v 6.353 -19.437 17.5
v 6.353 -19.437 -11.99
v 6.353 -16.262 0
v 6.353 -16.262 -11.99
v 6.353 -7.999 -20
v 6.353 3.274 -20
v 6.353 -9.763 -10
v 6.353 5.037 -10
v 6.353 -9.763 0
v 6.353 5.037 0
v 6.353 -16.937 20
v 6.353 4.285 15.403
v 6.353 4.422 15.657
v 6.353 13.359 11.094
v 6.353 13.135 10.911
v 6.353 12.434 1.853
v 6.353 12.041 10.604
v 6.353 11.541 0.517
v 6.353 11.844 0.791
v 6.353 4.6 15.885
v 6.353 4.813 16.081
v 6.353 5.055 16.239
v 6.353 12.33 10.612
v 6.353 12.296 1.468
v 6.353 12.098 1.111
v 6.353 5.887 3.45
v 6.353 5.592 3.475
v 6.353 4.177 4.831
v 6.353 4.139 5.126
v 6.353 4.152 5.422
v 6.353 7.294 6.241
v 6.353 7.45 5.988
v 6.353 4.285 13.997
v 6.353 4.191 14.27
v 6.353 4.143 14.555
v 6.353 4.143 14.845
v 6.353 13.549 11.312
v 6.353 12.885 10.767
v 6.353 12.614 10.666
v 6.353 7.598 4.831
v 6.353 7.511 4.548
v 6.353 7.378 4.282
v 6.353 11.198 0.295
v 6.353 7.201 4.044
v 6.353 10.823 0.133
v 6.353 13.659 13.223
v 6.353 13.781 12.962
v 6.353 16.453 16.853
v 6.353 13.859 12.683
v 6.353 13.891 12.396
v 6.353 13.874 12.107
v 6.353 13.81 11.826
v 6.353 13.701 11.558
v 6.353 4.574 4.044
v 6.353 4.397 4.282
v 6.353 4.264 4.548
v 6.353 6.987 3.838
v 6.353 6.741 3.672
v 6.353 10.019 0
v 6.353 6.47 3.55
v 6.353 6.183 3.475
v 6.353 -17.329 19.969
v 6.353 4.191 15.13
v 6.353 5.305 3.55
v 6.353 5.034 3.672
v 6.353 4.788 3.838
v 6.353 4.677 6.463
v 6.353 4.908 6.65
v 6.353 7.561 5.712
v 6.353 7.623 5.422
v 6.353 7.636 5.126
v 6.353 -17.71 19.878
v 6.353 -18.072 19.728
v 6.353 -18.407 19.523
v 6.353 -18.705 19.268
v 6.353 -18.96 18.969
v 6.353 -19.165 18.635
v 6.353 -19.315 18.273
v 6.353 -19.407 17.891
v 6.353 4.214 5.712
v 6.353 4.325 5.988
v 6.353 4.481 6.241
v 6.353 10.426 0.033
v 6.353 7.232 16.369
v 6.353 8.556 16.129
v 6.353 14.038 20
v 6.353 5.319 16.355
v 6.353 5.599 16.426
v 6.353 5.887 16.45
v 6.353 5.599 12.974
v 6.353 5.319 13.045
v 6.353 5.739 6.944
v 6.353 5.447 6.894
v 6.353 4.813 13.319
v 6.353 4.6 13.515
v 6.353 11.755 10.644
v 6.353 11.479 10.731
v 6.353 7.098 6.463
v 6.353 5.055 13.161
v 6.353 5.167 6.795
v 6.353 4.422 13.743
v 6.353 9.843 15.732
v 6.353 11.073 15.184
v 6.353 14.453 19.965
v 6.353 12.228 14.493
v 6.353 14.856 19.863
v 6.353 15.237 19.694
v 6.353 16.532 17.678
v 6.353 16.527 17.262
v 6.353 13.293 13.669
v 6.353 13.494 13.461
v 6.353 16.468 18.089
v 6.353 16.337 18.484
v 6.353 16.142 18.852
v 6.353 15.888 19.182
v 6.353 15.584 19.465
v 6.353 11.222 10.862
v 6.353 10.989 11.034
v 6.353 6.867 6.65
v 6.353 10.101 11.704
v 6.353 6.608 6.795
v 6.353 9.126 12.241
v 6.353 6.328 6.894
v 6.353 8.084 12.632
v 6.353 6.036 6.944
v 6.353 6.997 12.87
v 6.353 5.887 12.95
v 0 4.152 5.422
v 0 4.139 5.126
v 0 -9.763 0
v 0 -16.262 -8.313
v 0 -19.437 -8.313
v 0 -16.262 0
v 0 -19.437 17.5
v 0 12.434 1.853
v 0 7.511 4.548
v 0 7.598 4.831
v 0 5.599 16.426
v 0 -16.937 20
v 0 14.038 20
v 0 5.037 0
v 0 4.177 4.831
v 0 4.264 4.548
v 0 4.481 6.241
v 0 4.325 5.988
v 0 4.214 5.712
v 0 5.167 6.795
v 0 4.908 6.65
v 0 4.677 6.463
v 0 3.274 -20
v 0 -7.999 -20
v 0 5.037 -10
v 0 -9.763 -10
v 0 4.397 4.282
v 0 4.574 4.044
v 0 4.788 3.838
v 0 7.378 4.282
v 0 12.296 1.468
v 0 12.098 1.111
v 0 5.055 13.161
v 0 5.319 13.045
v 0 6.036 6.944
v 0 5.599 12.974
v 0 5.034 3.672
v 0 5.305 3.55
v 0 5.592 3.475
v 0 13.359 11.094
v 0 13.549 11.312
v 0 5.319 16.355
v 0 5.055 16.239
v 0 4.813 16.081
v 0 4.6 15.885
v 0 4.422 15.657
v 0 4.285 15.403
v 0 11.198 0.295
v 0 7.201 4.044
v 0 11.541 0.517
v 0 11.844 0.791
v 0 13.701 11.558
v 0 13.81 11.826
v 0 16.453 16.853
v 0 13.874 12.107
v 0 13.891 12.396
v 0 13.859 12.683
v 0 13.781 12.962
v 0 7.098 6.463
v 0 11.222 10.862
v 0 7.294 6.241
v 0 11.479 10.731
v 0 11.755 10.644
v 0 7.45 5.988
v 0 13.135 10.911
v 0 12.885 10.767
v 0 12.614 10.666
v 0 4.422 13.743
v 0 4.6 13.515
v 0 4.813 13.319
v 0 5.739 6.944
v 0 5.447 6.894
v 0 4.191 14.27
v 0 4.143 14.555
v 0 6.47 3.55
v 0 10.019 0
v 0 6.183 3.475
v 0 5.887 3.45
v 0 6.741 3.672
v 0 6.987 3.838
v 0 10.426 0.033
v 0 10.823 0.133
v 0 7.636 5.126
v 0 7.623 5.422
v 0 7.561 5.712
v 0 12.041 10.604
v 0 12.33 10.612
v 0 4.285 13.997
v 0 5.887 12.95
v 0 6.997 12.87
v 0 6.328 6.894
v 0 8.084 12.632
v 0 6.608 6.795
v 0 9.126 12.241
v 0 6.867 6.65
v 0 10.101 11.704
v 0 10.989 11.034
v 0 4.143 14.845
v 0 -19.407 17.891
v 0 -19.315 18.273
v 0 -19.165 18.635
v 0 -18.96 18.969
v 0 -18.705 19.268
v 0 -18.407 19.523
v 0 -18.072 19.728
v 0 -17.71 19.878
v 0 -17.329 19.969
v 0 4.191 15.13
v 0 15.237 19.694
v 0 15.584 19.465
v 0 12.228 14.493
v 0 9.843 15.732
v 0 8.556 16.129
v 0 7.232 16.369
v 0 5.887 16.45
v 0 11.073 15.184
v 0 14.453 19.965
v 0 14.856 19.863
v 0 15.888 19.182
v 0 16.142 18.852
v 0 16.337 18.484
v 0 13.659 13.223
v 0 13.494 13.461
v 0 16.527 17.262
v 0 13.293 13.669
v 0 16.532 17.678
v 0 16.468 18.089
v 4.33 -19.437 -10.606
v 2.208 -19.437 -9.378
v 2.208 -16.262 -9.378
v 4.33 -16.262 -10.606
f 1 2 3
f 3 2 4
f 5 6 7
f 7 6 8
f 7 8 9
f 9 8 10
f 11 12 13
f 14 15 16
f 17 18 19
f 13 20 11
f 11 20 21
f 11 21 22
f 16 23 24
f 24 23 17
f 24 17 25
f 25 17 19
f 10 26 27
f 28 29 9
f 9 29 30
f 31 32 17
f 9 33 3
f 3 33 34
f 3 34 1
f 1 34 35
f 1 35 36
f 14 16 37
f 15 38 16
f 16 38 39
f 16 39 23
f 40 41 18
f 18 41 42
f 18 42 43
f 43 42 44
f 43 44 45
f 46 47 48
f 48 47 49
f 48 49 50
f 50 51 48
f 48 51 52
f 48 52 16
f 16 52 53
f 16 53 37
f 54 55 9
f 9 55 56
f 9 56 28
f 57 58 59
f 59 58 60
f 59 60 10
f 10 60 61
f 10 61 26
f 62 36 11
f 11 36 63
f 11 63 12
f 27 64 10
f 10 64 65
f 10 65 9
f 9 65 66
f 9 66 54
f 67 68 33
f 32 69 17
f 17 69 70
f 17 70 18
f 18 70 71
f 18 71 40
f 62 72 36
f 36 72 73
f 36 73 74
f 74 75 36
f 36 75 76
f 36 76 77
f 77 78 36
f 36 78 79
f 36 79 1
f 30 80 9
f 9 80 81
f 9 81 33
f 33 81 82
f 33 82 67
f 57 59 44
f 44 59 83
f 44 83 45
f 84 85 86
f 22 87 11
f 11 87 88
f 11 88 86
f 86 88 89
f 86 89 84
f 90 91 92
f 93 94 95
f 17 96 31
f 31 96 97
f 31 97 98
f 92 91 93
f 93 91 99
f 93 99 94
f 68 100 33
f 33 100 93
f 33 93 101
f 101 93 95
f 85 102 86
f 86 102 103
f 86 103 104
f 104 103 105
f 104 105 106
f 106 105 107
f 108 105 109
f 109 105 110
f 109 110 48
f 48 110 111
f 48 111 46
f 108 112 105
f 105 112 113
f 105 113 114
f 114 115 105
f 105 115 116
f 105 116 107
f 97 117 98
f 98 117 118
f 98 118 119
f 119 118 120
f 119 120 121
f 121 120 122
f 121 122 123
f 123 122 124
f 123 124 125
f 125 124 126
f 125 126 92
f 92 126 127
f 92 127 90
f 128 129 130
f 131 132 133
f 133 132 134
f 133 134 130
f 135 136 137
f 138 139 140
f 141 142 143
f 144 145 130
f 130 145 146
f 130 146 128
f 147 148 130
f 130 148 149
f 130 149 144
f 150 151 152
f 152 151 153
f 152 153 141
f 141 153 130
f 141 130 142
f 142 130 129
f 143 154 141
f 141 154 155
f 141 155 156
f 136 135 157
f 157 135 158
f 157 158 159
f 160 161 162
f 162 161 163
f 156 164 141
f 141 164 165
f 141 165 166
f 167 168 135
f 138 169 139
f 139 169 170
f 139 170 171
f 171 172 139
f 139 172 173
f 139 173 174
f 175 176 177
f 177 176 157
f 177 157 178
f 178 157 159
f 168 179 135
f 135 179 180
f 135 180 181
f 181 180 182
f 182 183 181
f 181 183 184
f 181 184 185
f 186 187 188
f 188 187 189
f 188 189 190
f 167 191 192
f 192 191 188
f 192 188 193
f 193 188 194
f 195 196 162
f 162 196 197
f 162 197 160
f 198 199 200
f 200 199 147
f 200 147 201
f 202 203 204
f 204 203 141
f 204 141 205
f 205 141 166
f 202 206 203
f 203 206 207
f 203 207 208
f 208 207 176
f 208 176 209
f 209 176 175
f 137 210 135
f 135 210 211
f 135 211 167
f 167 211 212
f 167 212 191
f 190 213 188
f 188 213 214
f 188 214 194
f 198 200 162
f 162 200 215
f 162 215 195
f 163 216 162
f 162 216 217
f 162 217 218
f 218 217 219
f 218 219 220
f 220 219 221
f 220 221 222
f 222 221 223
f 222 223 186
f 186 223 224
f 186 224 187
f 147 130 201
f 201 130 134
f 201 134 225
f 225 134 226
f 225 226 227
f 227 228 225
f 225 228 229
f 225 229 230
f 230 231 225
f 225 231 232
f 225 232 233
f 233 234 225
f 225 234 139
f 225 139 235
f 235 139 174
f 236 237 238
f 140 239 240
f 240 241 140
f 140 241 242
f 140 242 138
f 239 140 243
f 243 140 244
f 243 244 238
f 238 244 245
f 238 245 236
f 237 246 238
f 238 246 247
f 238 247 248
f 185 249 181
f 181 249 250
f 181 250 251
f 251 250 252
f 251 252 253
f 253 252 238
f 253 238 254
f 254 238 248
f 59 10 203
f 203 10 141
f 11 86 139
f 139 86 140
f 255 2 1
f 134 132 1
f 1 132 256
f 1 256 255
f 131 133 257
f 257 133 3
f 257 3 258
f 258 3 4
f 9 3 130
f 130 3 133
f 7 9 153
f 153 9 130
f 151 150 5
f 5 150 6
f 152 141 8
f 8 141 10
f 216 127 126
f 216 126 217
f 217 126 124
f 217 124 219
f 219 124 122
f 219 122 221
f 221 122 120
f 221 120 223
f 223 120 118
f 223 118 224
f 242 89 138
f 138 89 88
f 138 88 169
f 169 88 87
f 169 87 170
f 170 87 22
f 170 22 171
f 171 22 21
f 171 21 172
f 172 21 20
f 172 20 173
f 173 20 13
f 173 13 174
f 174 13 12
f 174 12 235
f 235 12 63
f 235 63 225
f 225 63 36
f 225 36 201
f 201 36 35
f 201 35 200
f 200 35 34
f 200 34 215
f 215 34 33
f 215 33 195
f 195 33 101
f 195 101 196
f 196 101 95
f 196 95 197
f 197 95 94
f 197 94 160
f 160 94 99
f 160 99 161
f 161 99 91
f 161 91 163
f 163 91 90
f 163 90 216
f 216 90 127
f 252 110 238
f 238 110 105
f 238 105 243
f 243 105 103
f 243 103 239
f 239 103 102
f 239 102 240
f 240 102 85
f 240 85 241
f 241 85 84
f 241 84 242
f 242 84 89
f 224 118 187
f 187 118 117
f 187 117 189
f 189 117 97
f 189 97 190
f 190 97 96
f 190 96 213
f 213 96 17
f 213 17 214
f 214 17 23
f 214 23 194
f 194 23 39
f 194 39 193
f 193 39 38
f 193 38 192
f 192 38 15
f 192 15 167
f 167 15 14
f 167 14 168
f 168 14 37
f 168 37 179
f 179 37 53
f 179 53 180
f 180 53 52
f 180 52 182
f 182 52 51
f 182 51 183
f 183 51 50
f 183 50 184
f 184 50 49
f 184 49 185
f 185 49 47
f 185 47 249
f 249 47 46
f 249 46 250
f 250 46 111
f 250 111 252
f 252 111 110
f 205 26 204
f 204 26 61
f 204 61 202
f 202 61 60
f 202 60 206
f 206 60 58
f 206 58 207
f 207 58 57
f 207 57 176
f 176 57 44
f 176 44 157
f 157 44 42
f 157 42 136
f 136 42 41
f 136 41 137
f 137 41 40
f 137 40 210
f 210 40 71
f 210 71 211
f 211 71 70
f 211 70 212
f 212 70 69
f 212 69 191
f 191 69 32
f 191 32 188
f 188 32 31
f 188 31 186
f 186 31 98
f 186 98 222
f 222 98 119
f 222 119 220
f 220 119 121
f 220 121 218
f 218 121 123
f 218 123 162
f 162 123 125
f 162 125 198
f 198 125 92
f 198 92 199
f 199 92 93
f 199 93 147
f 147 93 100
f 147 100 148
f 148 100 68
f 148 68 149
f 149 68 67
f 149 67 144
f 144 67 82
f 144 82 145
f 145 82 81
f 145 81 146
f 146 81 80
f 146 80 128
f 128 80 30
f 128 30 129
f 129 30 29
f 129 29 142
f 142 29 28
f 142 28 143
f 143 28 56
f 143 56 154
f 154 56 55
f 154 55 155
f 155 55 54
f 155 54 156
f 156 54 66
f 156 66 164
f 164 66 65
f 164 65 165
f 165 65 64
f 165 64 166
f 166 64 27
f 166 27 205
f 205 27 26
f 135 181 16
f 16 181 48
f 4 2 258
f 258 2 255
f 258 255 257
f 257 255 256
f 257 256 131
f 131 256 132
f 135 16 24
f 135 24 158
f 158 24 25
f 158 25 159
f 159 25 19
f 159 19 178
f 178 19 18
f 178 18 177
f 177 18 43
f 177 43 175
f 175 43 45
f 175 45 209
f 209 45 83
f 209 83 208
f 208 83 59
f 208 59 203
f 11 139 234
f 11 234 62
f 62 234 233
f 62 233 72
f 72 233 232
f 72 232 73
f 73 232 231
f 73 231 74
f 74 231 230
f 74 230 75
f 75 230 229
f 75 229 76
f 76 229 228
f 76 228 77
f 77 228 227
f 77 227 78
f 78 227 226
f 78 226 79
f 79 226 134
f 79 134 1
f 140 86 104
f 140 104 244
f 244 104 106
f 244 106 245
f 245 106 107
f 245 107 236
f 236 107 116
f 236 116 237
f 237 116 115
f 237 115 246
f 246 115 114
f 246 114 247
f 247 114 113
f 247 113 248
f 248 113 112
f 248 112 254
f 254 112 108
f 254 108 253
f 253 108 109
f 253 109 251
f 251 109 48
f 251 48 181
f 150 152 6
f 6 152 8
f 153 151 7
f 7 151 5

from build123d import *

# Parameters (mm, degrees)
BOSS_EXTRUDE1_DEPTH = 6.353
CUT_EXTRUDE1_REACH  = 30.604
SKETCH2_R           = 1.75
SKETCH3_R           = 32.5
CUT_EXTRUDE2_DEPTH  = 9.675
FILLET1_R           = 2.5
CHAMFER1_SIZE       = 10
CHAMFER1_SIZE2      = 1.763269807
CHAMFER2_SIZE       = 10
CHAMFER2_SIZE2      = 1.763269807


with BuildPart() as part:
    # Sketch1 → Boss-Extrude1 (new body)
    with BuildSketch(Plane(origin=(0, 0, 0), x_dir=(0, 0, -1), z_dir=(1, 0, 0))):
        Polygon((0, 19.4375), (-20, 19.4375), (-20, -19.4375), (20, -19.4375), (20, -16.2625), (0, -16.2625), (0, -9.7625), (20, -9.7625), (20, 5.0375), (0, 5.0375), (0, 11.5375), align=None)
    extrude(amount=BOSS_EXTRUDE1_DEPTH)

    # Sketch2 → Cut-Extrude1 (cut, up to next)
    with BuildSketch(Plane(origin=(6.353, 0, 0), x_dir=(0, 0, -1), z_dir=(1, 0, 0)), mode=Mode.PRIVATE) as cut_extrude1_sk1:
        with BuildLine():
            ThreePointArc((-16.45, 5.8875), (-14.7, 7.6375), (-12.95, 5.8875))
            ThreePointArc((-12.95, 5.8875), (-12.455196051, 8.612317472), (-11.033966385, 10.989199346))
            ThreePointArc((-11.033966385, 10.989199346), (-11.199317007, 13.458543221), (-13.668660882, 13.293192599))
            ThreePointArc((-13.668660882, 13.293192599), (-15.731736204, 9.842880202), (-16.45, 5.8875))
        make_face()
    cut_extrude1_tool1 = extrude(cut_extrude1_sk1.sketch, amount=-CUT_EXTRUDE1_REACH, mode=Mode.PRIVATE) & part.part
    # Sketch2 → Cut-Extrude1 (cut, up to next)
    with BuildSketch(Plane(origin=(6.353, 0, 0), x_dir=(0, 0, -1), z_dir=(1, 0, 0)), mode=Mode.PRIVATE) as cut_extrude1_sk2:
        with Locations((-14.7, 5.8875)):
            Circle(SKETCH2_R)
    cut_extrude1_tool2 = extrude(cut_extrude1_sk2.sketch, amount=-CUT_EXTRUDE1_REACH, mode=Mode.PRIVATE) & part.part
    # Sketch2 → Cut-Extrude1 (cut, up to next)
    with BuildSketch(Plane(origin=(6.353, 0, 0), x_dir=(0, 0, -1), z_dir=(1, 0, 0)), mode=Mode.PRIVATE) as cut_extrude1_sk3:
        with Locations((-5.2, 5.8875)):
            Circle(SKETCH2_R)
    cut_extrude1_tool3 = extrude(cut_extrude1_sk3.sketch, amount=-CUT_EXTRUDE1_REACH, mode=Mode.PRIVATE) & part.part
    # Sketch2 → Cut-Extrude1 (cut, up to next)
    with BuildSketch(Plane(origin=(6.353, 0, 0), x_dir=(0, 0, -1), z_dir=(1, 0, 0)), mode=Mode.PRIVATE) as cut_extrude1_sk4:
        Polygon((0, 19.4375), (-20, 19.4375), (-20, 17.296483849), (0, 11.9375), align=None)
    cut_extrude1_tool4 = extrude(cut_extrude1_sk4.sketch, amount=-CUT_EXTRUDE1_REACH, mode=Mode.PRIVATE) & part.part
    add(cut_extrude1_tool1.solids().sort_by_distance((6.353, 10.415401, 13.430466))[0], mode=Mode.SUBTRACT)
    add(cut_extrude1_tool2.solids().sort_by_distance((6.353, 5.8875, 14.7))[0], mode=Mode.SUBTRACT)
    add(cut_extrude1_tool3.solids().sort_by_distance((6.353, 5.8875, 5.2))[0], mode=Mode.SUBTRACT)
    add(cut_extrude1_tool4.solids().sort_by_distance((6.353, 16.779012, 8.147158))[0], mode=Mode.SUBTRACT)

    # Sketch3 → Cut-Extrude2 (cut)
    with BuildSketch(Plane.XZ.offset(19.4375)):
        with Locations((-13, -38.1)):
            Circle(SKETCH3_R)
    extrude(amount=-CUT_EXTRUDE2_DEPTH, mode=Mode.SUBTRACT)

    # Fillet1
    fillet1_edges = [part.edges().sort_by_distance(p)[0] for p in [
        (3.1765, -19.4375, 20),
        (3.1765, 17.296483849, 20),
        (3.1765, 11.9375, 0),
    ]]
    fillet(fillet1_edges, radius=FILLET1_R)

    # Chamfer1
    chamfer1_edges = [part.edges().sort_by_distance(p)[0] for p in [
        (3.1765, 5.0375, -20),
    ]]
    chamfer1_side = [part.faces().sort_by_distance(p)[0] for p in [
        (3.1765, 5.0375, -10),
    ]]
    chamfer(chamfer1_edges, length=CHAMFER1_SIZE, length2=CHAMFER1_SIZE2, reference=chamfer1_side[0])

    # Chamfer2
    chamfer2_edges = [part.edges().sort_by_distance(p)[0] for p in [
        (3.1765, -9.7625, -20),
    ]]
    chamfer2_side = [part.faces().sort_by_distance(p)[0] for p in [
        (3.1765, -9.7625, -10),
    ]]
    chamfer(chamfer2_edges, length=CHAMFER2_SIZE, length2=CHAMFER2_SIZE2, reference=chamfer2_side[0])


solid = part.part
